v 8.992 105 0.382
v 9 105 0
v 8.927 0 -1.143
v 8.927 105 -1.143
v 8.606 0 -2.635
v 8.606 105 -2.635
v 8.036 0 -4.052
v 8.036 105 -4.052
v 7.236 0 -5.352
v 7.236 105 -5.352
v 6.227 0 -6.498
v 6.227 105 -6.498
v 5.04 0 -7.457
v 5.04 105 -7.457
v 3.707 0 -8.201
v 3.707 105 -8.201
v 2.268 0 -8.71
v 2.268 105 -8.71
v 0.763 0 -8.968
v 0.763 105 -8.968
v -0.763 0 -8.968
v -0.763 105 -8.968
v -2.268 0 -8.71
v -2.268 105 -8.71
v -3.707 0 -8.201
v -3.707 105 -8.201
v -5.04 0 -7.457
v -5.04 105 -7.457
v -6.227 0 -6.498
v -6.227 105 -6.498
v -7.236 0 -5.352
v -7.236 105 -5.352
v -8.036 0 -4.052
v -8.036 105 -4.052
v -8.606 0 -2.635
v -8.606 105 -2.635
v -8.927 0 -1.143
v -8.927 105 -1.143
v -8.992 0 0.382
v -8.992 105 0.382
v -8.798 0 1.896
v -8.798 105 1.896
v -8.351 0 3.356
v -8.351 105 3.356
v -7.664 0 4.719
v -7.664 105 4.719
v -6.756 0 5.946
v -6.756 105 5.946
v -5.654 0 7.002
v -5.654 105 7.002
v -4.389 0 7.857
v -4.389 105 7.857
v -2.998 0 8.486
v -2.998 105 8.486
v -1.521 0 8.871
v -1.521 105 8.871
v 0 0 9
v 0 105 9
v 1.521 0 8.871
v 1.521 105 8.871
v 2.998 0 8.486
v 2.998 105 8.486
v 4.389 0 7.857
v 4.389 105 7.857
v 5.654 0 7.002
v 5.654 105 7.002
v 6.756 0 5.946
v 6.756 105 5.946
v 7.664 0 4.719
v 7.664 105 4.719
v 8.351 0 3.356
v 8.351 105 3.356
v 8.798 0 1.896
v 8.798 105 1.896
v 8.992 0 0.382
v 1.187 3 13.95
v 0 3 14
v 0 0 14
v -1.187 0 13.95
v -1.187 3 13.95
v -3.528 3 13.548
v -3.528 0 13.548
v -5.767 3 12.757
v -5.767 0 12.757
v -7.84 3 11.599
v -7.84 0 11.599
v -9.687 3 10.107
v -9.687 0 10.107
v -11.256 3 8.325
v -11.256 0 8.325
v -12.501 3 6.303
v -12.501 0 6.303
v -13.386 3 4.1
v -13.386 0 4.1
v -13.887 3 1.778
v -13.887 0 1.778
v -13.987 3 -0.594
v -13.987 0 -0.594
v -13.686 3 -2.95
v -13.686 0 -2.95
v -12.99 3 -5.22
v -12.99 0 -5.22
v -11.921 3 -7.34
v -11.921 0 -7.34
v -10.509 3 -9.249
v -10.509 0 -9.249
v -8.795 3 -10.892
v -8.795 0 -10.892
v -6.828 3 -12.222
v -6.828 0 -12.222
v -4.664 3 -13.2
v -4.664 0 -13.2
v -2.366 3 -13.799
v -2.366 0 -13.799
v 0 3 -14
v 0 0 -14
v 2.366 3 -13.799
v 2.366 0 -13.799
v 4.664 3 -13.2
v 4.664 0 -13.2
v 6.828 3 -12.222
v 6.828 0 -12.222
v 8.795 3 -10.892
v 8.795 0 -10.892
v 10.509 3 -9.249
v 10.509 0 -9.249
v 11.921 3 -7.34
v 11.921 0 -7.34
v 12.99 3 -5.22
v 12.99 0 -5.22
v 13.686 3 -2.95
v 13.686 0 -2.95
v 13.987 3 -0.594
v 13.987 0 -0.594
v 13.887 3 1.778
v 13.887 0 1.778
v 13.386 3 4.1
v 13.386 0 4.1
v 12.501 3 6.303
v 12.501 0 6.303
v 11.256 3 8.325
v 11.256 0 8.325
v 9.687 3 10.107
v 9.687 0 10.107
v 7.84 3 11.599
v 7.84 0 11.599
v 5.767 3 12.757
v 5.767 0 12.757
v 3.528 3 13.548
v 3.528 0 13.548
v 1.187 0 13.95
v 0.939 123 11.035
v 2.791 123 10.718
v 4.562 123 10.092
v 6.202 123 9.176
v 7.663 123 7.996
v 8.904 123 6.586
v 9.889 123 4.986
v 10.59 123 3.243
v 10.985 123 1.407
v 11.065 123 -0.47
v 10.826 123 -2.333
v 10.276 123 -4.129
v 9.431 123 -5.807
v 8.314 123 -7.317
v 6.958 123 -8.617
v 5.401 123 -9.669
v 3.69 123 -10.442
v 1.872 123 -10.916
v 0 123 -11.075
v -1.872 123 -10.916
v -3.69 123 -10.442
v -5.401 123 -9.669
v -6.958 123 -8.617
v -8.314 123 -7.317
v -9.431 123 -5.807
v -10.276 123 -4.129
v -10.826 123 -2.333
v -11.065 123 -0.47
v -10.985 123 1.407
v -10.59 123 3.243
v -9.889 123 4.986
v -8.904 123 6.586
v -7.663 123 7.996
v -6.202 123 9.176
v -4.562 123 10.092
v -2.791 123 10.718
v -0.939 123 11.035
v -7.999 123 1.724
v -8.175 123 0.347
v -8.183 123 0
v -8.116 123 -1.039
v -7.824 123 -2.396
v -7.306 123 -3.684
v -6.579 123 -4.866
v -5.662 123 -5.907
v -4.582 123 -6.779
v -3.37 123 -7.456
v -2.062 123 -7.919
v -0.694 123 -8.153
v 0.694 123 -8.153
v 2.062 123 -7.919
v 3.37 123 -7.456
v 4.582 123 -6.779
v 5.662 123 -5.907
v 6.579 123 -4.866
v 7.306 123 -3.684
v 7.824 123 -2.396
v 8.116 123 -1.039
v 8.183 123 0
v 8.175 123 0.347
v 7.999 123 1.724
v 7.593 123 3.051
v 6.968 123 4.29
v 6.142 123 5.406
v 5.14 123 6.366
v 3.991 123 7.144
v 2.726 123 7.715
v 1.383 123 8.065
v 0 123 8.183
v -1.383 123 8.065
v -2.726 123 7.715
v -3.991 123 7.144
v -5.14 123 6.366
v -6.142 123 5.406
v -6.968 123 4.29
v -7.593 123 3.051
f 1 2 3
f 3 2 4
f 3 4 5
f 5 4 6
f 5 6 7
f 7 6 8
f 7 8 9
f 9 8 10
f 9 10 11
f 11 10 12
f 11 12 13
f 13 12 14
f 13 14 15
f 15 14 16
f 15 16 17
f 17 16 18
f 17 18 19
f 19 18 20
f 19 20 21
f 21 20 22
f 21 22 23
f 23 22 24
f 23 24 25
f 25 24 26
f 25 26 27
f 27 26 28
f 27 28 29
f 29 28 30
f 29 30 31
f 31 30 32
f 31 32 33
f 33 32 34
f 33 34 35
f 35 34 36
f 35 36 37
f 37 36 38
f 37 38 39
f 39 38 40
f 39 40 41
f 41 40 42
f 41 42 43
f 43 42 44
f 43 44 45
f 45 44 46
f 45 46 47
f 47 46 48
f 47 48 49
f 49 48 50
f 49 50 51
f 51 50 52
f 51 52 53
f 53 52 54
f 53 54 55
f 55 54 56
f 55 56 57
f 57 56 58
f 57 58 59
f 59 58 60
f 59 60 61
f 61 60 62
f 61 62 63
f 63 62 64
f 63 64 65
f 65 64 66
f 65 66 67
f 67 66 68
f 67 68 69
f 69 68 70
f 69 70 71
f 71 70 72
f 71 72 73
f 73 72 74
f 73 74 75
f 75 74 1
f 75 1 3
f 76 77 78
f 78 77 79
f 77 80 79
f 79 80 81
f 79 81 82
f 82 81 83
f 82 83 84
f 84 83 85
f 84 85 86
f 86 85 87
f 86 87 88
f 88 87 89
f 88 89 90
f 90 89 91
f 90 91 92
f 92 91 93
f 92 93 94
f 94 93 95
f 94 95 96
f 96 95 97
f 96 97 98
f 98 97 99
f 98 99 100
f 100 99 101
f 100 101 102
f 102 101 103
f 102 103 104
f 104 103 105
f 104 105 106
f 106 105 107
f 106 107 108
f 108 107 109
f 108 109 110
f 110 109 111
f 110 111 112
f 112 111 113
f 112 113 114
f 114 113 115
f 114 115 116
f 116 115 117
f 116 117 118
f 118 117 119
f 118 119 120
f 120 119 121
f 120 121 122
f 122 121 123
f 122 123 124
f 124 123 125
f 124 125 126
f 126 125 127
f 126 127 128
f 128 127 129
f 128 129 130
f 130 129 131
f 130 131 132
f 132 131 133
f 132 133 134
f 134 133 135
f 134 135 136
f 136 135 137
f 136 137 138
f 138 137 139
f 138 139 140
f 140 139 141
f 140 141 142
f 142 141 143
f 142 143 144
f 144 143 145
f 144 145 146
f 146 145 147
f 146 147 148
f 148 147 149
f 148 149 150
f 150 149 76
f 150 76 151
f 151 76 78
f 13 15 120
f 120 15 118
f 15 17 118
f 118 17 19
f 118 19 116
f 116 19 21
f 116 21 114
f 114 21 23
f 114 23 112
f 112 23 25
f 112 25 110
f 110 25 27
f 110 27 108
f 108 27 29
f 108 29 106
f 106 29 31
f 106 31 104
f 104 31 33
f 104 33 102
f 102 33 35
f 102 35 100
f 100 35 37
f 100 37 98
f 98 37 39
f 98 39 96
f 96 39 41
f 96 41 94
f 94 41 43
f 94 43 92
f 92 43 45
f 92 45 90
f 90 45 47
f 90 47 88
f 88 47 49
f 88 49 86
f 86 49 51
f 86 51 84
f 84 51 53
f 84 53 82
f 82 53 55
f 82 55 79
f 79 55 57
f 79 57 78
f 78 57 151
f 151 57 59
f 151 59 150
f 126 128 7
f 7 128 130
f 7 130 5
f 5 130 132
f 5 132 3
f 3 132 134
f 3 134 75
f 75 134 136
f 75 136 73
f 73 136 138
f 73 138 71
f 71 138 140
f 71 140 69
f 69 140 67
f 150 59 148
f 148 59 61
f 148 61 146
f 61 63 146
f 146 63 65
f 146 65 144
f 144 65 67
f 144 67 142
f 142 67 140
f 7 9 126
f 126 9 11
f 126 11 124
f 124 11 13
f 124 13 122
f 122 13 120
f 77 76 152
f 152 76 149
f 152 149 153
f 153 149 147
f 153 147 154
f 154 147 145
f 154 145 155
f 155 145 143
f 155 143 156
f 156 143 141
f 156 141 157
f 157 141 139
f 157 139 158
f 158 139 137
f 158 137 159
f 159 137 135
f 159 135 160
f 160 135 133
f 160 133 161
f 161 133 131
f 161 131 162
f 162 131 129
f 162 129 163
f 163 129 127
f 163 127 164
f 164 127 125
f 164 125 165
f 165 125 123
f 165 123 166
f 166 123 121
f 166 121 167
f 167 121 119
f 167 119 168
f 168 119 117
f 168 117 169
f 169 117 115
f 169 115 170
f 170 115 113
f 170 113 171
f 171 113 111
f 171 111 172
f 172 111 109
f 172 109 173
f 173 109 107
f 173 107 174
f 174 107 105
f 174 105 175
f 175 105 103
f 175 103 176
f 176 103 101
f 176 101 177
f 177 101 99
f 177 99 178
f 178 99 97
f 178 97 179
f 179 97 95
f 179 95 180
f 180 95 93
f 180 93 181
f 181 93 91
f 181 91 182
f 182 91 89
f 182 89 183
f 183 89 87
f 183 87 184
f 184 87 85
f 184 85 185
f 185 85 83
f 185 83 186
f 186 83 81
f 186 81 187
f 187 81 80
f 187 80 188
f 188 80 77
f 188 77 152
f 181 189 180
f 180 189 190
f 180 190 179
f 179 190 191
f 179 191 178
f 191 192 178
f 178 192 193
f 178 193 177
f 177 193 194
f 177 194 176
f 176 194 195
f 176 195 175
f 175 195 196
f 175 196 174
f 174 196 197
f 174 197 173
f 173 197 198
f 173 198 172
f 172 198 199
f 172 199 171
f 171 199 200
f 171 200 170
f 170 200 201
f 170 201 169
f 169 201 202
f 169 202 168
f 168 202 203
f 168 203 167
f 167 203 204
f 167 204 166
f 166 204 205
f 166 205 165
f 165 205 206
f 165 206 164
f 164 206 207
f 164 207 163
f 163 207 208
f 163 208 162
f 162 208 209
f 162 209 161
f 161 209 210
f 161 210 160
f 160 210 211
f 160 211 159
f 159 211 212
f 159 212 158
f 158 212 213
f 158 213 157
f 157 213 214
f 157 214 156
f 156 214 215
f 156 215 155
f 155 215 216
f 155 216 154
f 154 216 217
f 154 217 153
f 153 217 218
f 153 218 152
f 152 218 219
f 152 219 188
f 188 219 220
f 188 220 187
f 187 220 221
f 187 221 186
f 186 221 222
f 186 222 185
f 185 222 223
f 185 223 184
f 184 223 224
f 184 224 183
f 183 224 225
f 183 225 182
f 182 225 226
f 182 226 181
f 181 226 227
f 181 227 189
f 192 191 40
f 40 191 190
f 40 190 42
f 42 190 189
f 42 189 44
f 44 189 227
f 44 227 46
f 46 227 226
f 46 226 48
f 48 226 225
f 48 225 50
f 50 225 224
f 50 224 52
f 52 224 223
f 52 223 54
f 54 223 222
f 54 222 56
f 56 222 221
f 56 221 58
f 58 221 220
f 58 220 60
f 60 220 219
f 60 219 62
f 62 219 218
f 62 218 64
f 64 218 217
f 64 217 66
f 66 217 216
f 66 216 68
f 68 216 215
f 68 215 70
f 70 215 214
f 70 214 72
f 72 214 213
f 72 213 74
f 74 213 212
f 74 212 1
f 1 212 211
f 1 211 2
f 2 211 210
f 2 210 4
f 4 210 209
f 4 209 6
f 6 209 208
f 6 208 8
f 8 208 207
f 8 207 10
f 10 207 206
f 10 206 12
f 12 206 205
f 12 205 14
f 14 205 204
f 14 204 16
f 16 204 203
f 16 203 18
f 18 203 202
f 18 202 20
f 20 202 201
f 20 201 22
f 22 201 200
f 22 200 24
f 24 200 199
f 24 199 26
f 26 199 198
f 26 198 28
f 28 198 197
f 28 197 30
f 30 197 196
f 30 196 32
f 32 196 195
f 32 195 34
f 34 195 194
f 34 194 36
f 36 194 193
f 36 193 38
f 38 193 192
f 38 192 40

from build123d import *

# Parameters (mm, degrees)
CROQUIS1_R              = 14
SALIENTE_EXTRUIR1_DEPTH = 3
CROQUIS2_R              = 11.075
SALIENTE_EXTRUIR2_DEPTH = 120
CROQUIS10_R             = 9
CORTAR_EXTRUIR1_DEPTH   = 125.583305463


with BuildPart() as part:
    # Croquis1 → Saliente-Extruir1 (new body)
    with BuildSketch(Plane(origin=(0, 0, 0), x_dir=(1, 0, 0), z_dir=(0, 1, 0))):
        with Locations(Location((0, 0, 0), (0, 0, 270))):
            Circle(CROQUIS1_R)
    extrude(amount=SALIENTE_EXTRUIR1_DEPTH)

    # Croquis2 → Saliente-Extruir2 (add)
    with BuildSketch(Plane(origin=(0, 3, 0), x_dir=(1, 0, 0), z_dir=(0, 1, 0))):
        with Locations(Location((0, 0, 0), (0, 0, 270))):
            Circle(CROQUIS2_R)
    extrude(amount=SALIENTE_EXTRUIR2_DEPTH)

    # Croquis4 → Revolución1 (revolve)
    with BuildSketch(Plane.XY, mode=Mode.PRIVATE) as revoluci_n1_sk:
        Polygon((14, 3), (11.075, 3), (11.075, 123), align=None)
    revolve(revoluci_n1_sk.sketch.rotate(Axis((0, 0, 0), (0, 1, 0)), 90), axis=Axis((0, 0, 0), (0, 1, 0)))

    # Croquis10 → Cortar-Extruir1 (cut, through all)
    with BuildSketch(Plane(origin=(0, 123, 0), x_dir=(1, 0, 0), z_dir=(0, 1, 0))):
        with Locations(Location((0, 0, 0), (0, 0, 270))):
            Circle(CROQUIS10_R)
    extrude(amount=-CORTAR_EXTRUIR1_DEPTH, mode=Mode.SUBTRACT)

    # Croquis11 → Revolución2 (revolve)
    with BuildSketch(Plane.XY, mode=Mode.PRIVATE) as revoluci_n2_sk:
        Polygon((9, 123), (9, 105), (8.182624783, 123), align=None)
    revolve(revoluci_n2_sk.sketch.rotate(Axis((0, 123, 0), (0, -1, 0)), 90), axis=Axis((0, 123, 0), (0, -1, 0)))


solid = part.part
